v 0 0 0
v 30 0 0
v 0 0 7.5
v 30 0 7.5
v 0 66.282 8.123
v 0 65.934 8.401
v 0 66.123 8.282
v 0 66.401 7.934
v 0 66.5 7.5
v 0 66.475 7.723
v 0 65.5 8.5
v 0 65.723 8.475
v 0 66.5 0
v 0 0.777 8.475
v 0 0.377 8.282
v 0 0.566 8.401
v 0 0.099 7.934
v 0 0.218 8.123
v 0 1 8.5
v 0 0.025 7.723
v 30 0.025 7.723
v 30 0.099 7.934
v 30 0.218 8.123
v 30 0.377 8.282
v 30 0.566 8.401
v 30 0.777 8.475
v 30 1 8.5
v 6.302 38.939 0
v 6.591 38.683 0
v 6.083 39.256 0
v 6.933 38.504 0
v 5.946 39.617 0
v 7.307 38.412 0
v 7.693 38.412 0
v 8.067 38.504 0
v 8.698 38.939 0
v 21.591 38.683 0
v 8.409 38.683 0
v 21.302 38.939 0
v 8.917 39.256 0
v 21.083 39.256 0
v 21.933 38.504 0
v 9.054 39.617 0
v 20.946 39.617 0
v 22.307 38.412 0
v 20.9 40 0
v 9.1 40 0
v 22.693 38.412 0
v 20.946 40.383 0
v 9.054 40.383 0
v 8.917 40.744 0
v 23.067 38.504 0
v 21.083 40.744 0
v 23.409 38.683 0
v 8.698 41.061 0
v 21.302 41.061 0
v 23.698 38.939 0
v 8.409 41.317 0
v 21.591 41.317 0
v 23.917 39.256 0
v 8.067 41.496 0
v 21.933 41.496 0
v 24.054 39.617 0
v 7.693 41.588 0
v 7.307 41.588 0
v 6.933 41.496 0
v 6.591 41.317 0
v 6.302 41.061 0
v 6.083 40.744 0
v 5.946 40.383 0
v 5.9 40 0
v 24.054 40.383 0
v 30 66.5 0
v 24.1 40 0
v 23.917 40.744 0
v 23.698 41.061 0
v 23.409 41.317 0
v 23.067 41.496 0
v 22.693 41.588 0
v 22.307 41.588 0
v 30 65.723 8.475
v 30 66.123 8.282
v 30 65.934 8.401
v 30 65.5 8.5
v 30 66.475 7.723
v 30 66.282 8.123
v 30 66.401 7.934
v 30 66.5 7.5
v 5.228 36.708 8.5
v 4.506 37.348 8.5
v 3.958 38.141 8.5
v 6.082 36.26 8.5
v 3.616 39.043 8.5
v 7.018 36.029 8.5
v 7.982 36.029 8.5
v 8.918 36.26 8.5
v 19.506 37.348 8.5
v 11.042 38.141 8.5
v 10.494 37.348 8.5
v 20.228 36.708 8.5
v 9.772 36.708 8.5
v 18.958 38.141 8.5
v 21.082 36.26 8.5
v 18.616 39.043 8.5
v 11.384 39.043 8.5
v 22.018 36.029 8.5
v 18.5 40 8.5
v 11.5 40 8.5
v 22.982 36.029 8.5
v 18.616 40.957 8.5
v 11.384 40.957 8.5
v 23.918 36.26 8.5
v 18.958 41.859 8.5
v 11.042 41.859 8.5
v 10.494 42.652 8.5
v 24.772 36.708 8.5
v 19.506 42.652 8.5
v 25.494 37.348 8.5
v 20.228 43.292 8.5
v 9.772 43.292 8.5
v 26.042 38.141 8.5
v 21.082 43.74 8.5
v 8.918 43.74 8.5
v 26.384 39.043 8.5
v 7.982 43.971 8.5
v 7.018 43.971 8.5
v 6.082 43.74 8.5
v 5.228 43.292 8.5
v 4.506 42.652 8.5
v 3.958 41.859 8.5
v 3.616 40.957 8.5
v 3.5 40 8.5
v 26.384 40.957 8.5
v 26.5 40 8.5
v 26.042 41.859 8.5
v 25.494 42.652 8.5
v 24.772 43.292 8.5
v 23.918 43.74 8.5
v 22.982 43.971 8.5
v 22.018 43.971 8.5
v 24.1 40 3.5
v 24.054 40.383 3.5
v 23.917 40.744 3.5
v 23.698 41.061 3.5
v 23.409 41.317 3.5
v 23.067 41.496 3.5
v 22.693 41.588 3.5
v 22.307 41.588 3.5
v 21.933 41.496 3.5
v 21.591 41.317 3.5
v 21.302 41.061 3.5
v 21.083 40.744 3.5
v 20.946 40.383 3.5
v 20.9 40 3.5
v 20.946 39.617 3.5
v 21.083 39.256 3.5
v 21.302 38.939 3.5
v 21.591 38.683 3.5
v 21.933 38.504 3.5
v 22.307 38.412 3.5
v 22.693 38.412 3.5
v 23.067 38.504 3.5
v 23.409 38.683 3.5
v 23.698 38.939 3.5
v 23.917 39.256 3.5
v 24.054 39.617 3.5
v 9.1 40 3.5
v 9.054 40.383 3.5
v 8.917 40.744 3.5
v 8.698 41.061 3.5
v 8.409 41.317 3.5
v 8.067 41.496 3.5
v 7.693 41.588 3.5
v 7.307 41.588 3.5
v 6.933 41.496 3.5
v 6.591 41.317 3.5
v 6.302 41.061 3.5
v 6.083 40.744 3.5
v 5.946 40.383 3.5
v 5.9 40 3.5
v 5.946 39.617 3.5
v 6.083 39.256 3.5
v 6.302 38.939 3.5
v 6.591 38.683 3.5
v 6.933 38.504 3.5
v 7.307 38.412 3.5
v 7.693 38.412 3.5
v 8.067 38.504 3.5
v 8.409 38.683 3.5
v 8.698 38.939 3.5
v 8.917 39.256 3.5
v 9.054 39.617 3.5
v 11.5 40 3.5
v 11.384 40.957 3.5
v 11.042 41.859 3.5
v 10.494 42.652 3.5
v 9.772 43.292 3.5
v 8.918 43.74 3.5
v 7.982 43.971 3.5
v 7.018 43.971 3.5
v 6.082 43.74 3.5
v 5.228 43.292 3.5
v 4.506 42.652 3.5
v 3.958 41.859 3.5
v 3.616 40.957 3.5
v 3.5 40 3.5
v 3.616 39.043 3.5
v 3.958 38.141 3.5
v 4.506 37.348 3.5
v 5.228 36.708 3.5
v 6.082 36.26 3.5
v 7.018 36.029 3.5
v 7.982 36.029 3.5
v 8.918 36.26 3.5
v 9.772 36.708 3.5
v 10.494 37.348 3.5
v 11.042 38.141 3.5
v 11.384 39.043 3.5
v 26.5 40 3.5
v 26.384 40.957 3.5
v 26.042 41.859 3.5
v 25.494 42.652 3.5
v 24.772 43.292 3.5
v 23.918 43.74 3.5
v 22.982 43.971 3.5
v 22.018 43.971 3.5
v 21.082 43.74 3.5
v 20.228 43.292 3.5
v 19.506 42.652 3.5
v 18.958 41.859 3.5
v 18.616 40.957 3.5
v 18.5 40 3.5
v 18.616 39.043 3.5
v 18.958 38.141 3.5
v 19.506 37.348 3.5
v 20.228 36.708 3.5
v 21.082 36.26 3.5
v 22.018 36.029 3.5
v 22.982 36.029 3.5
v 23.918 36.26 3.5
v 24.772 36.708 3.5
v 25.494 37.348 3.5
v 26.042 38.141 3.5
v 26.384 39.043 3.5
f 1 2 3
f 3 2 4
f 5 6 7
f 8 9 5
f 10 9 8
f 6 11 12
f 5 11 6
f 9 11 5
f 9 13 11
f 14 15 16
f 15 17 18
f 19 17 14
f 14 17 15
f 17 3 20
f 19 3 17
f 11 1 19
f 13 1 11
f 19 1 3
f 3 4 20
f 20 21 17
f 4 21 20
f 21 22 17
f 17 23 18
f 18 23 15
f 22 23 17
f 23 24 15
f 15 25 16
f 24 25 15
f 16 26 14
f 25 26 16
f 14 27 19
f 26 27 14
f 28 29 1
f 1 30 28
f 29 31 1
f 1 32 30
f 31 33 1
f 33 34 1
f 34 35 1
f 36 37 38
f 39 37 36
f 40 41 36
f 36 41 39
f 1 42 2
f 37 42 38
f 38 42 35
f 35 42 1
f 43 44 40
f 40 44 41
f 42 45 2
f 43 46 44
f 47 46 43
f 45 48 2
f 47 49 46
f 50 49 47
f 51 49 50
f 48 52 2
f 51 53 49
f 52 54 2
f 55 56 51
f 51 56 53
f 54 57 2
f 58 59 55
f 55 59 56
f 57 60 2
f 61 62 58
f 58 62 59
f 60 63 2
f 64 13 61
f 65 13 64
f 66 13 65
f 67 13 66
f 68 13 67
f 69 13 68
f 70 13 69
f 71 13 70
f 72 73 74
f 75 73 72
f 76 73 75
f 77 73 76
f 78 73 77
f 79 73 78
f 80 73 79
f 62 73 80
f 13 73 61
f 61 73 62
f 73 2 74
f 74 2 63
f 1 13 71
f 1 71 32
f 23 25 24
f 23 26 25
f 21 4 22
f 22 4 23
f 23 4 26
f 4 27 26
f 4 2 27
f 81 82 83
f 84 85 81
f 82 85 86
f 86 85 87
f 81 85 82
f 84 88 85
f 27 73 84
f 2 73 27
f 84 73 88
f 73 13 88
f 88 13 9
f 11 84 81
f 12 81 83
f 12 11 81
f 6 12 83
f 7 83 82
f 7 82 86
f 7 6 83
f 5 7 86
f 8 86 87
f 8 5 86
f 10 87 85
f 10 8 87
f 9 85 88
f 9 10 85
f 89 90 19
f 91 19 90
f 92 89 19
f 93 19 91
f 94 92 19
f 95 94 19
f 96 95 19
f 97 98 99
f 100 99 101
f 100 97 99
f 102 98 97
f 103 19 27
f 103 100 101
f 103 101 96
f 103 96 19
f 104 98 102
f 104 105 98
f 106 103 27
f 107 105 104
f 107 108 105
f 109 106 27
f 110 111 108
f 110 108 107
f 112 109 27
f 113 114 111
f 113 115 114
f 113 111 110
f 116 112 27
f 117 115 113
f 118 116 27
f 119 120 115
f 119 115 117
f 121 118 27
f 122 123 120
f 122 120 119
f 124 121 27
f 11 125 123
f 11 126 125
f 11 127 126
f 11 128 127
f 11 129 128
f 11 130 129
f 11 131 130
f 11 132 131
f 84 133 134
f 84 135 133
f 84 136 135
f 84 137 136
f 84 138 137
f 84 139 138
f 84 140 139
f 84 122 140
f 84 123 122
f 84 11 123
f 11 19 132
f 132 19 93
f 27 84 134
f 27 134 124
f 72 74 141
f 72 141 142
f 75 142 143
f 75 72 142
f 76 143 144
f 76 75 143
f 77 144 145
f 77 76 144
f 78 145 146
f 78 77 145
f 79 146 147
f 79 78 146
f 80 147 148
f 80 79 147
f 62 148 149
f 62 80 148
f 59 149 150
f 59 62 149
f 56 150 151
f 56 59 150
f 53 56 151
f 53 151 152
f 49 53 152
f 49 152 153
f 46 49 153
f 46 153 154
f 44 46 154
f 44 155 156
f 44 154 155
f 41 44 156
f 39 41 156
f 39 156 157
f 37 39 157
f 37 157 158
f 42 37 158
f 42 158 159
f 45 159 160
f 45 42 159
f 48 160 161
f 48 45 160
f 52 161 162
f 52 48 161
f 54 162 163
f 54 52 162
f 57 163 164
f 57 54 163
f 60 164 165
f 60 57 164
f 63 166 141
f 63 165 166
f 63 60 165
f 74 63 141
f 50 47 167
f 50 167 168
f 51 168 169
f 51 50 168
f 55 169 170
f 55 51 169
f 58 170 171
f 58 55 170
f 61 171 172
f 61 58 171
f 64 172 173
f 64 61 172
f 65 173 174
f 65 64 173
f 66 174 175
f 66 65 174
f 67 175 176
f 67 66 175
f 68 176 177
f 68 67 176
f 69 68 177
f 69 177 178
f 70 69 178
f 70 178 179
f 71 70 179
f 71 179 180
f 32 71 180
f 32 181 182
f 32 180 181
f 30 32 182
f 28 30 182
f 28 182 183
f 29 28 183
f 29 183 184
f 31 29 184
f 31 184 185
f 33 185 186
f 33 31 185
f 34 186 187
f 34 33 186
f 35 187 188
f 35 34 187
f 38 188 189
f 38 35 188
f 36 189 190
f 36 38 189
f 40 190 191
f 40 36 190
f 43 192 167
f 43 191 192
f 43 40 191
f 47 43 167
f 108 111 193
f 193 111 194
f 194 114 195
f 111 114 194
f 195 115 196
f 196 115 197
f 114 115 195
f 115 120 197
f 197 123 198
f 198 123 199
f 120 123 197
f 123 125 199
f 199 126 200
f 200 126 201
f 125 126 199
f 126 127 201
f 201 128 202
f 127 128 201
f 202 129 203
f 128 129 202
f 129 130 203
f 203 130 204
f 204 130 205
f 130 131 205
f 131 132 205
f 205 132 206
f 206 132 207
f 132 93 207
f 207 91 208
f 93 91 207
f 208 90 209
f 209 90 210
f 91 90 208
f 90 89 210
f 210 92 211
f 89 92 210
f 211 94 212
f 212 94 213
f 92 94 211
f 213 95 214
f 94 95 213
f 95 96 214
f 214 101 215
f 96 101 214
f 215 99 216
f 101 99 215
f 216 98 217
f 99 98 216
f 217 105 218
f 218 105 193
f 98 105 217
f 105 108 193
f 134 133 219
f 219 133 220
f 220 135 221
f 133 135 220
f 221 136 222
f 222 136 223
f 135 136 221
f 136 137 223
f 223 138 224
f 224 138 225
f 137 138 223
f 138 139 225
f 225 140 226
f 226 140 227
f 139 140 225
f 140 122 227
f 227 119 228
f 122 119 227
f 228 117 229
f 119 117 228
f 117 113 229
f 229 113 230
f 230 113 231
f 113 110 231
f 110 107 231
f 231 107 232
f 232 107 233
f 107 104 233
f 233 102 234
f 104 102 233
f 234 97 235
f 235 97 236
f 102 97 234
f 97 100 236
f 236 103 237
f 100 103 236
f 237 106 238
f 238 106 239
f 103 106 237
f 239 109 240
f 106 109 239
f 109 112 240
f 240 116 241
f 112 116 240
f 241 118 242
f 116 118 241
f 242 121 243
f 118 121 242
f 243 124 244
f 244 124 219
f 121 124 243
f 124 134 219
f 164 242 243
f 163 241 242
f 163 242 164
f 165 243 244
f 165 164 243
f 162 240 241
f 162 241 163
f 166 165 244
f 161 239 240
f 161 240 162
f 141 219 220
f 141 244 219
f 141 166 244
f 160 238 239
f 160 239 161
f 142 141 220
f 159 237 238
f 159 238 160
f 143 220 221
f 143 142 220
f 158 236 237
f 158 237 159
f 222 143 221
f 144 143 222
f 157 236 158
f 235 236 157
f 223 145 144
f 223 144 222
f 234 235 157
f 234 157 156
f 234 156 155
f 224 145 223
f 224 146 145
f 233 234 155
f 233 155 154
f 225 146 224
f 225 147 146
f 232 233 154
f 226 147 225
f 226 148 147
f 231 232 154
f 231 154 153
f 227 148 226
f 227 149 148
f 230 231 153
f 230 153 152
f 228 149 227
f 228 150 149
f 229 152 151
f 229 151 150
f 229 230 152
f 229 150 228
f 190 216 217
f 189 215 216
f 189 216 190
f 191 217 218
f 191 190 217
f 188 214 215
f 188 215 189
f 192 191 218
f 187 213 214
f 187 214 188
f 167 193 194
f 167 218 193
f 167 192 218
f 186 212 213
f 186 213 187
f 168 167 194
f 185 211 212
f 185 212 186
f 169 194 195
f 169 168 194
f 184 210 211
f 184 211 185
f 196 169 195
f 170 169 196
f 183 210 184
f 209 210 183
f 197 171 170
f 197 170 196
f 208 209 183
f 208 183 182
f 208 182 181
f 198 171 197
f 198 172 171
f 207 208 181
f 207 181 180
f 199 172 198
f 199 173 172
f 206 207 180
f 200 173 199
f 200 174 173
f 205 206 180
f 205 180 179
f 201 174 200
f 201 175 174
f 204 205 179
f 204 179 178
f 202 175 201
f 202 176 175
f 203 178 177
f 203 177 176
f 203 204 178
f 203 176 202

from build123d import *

# Parameters (mm, degrees)
SKETCH_W     = 30
SKETCH_H     = 66.5
SKETCH_R     = 1.6
PAD_DEPTH    = 8.5
SKETCH001_R  = 4
POCKET_DEPTH = 5
FILLET_R     = 1


with BuildPart() as part:
    # Sketch → Pad (new body)
    with BuildSketch(Plane.XY):
        with Locations((15, 33.25)):
            Rectangle(SKETCH_W, SKETCH_H)
        with Locations((7.5, 40)):
            Circle(SKETCH_R, mode=Mode.SUBTRACT)
        with Locations((22.5, 40)):
            Circle(SKETCH_R, mode=Mode.SUBTRACT)
    extrude(amount=PAD_DEPTH)

    # Sketch001 (on Face8 of Pad) → Pocket (cut)
    with BuildSketch(Plane.XY.offset(8.5)):
        with Locations((7.5, 40)):
            Circle(SKETCH001_R)
        with Locations((22.5, 40)):
            Circle(SKETCH001_R)
    extrude(amount=-POCKET_DEPTH, mode=Mode.SUBTRACT)

    # Fillet
    fillet_edges = [part.edges().sort_by_distance(p)[0] for p in [
        (15, 66.5, 8.5),
        (15, 0, 8.5),
    ]]
    fillet(fillet_edges, radius=FILLET_R)


solid = part.part
